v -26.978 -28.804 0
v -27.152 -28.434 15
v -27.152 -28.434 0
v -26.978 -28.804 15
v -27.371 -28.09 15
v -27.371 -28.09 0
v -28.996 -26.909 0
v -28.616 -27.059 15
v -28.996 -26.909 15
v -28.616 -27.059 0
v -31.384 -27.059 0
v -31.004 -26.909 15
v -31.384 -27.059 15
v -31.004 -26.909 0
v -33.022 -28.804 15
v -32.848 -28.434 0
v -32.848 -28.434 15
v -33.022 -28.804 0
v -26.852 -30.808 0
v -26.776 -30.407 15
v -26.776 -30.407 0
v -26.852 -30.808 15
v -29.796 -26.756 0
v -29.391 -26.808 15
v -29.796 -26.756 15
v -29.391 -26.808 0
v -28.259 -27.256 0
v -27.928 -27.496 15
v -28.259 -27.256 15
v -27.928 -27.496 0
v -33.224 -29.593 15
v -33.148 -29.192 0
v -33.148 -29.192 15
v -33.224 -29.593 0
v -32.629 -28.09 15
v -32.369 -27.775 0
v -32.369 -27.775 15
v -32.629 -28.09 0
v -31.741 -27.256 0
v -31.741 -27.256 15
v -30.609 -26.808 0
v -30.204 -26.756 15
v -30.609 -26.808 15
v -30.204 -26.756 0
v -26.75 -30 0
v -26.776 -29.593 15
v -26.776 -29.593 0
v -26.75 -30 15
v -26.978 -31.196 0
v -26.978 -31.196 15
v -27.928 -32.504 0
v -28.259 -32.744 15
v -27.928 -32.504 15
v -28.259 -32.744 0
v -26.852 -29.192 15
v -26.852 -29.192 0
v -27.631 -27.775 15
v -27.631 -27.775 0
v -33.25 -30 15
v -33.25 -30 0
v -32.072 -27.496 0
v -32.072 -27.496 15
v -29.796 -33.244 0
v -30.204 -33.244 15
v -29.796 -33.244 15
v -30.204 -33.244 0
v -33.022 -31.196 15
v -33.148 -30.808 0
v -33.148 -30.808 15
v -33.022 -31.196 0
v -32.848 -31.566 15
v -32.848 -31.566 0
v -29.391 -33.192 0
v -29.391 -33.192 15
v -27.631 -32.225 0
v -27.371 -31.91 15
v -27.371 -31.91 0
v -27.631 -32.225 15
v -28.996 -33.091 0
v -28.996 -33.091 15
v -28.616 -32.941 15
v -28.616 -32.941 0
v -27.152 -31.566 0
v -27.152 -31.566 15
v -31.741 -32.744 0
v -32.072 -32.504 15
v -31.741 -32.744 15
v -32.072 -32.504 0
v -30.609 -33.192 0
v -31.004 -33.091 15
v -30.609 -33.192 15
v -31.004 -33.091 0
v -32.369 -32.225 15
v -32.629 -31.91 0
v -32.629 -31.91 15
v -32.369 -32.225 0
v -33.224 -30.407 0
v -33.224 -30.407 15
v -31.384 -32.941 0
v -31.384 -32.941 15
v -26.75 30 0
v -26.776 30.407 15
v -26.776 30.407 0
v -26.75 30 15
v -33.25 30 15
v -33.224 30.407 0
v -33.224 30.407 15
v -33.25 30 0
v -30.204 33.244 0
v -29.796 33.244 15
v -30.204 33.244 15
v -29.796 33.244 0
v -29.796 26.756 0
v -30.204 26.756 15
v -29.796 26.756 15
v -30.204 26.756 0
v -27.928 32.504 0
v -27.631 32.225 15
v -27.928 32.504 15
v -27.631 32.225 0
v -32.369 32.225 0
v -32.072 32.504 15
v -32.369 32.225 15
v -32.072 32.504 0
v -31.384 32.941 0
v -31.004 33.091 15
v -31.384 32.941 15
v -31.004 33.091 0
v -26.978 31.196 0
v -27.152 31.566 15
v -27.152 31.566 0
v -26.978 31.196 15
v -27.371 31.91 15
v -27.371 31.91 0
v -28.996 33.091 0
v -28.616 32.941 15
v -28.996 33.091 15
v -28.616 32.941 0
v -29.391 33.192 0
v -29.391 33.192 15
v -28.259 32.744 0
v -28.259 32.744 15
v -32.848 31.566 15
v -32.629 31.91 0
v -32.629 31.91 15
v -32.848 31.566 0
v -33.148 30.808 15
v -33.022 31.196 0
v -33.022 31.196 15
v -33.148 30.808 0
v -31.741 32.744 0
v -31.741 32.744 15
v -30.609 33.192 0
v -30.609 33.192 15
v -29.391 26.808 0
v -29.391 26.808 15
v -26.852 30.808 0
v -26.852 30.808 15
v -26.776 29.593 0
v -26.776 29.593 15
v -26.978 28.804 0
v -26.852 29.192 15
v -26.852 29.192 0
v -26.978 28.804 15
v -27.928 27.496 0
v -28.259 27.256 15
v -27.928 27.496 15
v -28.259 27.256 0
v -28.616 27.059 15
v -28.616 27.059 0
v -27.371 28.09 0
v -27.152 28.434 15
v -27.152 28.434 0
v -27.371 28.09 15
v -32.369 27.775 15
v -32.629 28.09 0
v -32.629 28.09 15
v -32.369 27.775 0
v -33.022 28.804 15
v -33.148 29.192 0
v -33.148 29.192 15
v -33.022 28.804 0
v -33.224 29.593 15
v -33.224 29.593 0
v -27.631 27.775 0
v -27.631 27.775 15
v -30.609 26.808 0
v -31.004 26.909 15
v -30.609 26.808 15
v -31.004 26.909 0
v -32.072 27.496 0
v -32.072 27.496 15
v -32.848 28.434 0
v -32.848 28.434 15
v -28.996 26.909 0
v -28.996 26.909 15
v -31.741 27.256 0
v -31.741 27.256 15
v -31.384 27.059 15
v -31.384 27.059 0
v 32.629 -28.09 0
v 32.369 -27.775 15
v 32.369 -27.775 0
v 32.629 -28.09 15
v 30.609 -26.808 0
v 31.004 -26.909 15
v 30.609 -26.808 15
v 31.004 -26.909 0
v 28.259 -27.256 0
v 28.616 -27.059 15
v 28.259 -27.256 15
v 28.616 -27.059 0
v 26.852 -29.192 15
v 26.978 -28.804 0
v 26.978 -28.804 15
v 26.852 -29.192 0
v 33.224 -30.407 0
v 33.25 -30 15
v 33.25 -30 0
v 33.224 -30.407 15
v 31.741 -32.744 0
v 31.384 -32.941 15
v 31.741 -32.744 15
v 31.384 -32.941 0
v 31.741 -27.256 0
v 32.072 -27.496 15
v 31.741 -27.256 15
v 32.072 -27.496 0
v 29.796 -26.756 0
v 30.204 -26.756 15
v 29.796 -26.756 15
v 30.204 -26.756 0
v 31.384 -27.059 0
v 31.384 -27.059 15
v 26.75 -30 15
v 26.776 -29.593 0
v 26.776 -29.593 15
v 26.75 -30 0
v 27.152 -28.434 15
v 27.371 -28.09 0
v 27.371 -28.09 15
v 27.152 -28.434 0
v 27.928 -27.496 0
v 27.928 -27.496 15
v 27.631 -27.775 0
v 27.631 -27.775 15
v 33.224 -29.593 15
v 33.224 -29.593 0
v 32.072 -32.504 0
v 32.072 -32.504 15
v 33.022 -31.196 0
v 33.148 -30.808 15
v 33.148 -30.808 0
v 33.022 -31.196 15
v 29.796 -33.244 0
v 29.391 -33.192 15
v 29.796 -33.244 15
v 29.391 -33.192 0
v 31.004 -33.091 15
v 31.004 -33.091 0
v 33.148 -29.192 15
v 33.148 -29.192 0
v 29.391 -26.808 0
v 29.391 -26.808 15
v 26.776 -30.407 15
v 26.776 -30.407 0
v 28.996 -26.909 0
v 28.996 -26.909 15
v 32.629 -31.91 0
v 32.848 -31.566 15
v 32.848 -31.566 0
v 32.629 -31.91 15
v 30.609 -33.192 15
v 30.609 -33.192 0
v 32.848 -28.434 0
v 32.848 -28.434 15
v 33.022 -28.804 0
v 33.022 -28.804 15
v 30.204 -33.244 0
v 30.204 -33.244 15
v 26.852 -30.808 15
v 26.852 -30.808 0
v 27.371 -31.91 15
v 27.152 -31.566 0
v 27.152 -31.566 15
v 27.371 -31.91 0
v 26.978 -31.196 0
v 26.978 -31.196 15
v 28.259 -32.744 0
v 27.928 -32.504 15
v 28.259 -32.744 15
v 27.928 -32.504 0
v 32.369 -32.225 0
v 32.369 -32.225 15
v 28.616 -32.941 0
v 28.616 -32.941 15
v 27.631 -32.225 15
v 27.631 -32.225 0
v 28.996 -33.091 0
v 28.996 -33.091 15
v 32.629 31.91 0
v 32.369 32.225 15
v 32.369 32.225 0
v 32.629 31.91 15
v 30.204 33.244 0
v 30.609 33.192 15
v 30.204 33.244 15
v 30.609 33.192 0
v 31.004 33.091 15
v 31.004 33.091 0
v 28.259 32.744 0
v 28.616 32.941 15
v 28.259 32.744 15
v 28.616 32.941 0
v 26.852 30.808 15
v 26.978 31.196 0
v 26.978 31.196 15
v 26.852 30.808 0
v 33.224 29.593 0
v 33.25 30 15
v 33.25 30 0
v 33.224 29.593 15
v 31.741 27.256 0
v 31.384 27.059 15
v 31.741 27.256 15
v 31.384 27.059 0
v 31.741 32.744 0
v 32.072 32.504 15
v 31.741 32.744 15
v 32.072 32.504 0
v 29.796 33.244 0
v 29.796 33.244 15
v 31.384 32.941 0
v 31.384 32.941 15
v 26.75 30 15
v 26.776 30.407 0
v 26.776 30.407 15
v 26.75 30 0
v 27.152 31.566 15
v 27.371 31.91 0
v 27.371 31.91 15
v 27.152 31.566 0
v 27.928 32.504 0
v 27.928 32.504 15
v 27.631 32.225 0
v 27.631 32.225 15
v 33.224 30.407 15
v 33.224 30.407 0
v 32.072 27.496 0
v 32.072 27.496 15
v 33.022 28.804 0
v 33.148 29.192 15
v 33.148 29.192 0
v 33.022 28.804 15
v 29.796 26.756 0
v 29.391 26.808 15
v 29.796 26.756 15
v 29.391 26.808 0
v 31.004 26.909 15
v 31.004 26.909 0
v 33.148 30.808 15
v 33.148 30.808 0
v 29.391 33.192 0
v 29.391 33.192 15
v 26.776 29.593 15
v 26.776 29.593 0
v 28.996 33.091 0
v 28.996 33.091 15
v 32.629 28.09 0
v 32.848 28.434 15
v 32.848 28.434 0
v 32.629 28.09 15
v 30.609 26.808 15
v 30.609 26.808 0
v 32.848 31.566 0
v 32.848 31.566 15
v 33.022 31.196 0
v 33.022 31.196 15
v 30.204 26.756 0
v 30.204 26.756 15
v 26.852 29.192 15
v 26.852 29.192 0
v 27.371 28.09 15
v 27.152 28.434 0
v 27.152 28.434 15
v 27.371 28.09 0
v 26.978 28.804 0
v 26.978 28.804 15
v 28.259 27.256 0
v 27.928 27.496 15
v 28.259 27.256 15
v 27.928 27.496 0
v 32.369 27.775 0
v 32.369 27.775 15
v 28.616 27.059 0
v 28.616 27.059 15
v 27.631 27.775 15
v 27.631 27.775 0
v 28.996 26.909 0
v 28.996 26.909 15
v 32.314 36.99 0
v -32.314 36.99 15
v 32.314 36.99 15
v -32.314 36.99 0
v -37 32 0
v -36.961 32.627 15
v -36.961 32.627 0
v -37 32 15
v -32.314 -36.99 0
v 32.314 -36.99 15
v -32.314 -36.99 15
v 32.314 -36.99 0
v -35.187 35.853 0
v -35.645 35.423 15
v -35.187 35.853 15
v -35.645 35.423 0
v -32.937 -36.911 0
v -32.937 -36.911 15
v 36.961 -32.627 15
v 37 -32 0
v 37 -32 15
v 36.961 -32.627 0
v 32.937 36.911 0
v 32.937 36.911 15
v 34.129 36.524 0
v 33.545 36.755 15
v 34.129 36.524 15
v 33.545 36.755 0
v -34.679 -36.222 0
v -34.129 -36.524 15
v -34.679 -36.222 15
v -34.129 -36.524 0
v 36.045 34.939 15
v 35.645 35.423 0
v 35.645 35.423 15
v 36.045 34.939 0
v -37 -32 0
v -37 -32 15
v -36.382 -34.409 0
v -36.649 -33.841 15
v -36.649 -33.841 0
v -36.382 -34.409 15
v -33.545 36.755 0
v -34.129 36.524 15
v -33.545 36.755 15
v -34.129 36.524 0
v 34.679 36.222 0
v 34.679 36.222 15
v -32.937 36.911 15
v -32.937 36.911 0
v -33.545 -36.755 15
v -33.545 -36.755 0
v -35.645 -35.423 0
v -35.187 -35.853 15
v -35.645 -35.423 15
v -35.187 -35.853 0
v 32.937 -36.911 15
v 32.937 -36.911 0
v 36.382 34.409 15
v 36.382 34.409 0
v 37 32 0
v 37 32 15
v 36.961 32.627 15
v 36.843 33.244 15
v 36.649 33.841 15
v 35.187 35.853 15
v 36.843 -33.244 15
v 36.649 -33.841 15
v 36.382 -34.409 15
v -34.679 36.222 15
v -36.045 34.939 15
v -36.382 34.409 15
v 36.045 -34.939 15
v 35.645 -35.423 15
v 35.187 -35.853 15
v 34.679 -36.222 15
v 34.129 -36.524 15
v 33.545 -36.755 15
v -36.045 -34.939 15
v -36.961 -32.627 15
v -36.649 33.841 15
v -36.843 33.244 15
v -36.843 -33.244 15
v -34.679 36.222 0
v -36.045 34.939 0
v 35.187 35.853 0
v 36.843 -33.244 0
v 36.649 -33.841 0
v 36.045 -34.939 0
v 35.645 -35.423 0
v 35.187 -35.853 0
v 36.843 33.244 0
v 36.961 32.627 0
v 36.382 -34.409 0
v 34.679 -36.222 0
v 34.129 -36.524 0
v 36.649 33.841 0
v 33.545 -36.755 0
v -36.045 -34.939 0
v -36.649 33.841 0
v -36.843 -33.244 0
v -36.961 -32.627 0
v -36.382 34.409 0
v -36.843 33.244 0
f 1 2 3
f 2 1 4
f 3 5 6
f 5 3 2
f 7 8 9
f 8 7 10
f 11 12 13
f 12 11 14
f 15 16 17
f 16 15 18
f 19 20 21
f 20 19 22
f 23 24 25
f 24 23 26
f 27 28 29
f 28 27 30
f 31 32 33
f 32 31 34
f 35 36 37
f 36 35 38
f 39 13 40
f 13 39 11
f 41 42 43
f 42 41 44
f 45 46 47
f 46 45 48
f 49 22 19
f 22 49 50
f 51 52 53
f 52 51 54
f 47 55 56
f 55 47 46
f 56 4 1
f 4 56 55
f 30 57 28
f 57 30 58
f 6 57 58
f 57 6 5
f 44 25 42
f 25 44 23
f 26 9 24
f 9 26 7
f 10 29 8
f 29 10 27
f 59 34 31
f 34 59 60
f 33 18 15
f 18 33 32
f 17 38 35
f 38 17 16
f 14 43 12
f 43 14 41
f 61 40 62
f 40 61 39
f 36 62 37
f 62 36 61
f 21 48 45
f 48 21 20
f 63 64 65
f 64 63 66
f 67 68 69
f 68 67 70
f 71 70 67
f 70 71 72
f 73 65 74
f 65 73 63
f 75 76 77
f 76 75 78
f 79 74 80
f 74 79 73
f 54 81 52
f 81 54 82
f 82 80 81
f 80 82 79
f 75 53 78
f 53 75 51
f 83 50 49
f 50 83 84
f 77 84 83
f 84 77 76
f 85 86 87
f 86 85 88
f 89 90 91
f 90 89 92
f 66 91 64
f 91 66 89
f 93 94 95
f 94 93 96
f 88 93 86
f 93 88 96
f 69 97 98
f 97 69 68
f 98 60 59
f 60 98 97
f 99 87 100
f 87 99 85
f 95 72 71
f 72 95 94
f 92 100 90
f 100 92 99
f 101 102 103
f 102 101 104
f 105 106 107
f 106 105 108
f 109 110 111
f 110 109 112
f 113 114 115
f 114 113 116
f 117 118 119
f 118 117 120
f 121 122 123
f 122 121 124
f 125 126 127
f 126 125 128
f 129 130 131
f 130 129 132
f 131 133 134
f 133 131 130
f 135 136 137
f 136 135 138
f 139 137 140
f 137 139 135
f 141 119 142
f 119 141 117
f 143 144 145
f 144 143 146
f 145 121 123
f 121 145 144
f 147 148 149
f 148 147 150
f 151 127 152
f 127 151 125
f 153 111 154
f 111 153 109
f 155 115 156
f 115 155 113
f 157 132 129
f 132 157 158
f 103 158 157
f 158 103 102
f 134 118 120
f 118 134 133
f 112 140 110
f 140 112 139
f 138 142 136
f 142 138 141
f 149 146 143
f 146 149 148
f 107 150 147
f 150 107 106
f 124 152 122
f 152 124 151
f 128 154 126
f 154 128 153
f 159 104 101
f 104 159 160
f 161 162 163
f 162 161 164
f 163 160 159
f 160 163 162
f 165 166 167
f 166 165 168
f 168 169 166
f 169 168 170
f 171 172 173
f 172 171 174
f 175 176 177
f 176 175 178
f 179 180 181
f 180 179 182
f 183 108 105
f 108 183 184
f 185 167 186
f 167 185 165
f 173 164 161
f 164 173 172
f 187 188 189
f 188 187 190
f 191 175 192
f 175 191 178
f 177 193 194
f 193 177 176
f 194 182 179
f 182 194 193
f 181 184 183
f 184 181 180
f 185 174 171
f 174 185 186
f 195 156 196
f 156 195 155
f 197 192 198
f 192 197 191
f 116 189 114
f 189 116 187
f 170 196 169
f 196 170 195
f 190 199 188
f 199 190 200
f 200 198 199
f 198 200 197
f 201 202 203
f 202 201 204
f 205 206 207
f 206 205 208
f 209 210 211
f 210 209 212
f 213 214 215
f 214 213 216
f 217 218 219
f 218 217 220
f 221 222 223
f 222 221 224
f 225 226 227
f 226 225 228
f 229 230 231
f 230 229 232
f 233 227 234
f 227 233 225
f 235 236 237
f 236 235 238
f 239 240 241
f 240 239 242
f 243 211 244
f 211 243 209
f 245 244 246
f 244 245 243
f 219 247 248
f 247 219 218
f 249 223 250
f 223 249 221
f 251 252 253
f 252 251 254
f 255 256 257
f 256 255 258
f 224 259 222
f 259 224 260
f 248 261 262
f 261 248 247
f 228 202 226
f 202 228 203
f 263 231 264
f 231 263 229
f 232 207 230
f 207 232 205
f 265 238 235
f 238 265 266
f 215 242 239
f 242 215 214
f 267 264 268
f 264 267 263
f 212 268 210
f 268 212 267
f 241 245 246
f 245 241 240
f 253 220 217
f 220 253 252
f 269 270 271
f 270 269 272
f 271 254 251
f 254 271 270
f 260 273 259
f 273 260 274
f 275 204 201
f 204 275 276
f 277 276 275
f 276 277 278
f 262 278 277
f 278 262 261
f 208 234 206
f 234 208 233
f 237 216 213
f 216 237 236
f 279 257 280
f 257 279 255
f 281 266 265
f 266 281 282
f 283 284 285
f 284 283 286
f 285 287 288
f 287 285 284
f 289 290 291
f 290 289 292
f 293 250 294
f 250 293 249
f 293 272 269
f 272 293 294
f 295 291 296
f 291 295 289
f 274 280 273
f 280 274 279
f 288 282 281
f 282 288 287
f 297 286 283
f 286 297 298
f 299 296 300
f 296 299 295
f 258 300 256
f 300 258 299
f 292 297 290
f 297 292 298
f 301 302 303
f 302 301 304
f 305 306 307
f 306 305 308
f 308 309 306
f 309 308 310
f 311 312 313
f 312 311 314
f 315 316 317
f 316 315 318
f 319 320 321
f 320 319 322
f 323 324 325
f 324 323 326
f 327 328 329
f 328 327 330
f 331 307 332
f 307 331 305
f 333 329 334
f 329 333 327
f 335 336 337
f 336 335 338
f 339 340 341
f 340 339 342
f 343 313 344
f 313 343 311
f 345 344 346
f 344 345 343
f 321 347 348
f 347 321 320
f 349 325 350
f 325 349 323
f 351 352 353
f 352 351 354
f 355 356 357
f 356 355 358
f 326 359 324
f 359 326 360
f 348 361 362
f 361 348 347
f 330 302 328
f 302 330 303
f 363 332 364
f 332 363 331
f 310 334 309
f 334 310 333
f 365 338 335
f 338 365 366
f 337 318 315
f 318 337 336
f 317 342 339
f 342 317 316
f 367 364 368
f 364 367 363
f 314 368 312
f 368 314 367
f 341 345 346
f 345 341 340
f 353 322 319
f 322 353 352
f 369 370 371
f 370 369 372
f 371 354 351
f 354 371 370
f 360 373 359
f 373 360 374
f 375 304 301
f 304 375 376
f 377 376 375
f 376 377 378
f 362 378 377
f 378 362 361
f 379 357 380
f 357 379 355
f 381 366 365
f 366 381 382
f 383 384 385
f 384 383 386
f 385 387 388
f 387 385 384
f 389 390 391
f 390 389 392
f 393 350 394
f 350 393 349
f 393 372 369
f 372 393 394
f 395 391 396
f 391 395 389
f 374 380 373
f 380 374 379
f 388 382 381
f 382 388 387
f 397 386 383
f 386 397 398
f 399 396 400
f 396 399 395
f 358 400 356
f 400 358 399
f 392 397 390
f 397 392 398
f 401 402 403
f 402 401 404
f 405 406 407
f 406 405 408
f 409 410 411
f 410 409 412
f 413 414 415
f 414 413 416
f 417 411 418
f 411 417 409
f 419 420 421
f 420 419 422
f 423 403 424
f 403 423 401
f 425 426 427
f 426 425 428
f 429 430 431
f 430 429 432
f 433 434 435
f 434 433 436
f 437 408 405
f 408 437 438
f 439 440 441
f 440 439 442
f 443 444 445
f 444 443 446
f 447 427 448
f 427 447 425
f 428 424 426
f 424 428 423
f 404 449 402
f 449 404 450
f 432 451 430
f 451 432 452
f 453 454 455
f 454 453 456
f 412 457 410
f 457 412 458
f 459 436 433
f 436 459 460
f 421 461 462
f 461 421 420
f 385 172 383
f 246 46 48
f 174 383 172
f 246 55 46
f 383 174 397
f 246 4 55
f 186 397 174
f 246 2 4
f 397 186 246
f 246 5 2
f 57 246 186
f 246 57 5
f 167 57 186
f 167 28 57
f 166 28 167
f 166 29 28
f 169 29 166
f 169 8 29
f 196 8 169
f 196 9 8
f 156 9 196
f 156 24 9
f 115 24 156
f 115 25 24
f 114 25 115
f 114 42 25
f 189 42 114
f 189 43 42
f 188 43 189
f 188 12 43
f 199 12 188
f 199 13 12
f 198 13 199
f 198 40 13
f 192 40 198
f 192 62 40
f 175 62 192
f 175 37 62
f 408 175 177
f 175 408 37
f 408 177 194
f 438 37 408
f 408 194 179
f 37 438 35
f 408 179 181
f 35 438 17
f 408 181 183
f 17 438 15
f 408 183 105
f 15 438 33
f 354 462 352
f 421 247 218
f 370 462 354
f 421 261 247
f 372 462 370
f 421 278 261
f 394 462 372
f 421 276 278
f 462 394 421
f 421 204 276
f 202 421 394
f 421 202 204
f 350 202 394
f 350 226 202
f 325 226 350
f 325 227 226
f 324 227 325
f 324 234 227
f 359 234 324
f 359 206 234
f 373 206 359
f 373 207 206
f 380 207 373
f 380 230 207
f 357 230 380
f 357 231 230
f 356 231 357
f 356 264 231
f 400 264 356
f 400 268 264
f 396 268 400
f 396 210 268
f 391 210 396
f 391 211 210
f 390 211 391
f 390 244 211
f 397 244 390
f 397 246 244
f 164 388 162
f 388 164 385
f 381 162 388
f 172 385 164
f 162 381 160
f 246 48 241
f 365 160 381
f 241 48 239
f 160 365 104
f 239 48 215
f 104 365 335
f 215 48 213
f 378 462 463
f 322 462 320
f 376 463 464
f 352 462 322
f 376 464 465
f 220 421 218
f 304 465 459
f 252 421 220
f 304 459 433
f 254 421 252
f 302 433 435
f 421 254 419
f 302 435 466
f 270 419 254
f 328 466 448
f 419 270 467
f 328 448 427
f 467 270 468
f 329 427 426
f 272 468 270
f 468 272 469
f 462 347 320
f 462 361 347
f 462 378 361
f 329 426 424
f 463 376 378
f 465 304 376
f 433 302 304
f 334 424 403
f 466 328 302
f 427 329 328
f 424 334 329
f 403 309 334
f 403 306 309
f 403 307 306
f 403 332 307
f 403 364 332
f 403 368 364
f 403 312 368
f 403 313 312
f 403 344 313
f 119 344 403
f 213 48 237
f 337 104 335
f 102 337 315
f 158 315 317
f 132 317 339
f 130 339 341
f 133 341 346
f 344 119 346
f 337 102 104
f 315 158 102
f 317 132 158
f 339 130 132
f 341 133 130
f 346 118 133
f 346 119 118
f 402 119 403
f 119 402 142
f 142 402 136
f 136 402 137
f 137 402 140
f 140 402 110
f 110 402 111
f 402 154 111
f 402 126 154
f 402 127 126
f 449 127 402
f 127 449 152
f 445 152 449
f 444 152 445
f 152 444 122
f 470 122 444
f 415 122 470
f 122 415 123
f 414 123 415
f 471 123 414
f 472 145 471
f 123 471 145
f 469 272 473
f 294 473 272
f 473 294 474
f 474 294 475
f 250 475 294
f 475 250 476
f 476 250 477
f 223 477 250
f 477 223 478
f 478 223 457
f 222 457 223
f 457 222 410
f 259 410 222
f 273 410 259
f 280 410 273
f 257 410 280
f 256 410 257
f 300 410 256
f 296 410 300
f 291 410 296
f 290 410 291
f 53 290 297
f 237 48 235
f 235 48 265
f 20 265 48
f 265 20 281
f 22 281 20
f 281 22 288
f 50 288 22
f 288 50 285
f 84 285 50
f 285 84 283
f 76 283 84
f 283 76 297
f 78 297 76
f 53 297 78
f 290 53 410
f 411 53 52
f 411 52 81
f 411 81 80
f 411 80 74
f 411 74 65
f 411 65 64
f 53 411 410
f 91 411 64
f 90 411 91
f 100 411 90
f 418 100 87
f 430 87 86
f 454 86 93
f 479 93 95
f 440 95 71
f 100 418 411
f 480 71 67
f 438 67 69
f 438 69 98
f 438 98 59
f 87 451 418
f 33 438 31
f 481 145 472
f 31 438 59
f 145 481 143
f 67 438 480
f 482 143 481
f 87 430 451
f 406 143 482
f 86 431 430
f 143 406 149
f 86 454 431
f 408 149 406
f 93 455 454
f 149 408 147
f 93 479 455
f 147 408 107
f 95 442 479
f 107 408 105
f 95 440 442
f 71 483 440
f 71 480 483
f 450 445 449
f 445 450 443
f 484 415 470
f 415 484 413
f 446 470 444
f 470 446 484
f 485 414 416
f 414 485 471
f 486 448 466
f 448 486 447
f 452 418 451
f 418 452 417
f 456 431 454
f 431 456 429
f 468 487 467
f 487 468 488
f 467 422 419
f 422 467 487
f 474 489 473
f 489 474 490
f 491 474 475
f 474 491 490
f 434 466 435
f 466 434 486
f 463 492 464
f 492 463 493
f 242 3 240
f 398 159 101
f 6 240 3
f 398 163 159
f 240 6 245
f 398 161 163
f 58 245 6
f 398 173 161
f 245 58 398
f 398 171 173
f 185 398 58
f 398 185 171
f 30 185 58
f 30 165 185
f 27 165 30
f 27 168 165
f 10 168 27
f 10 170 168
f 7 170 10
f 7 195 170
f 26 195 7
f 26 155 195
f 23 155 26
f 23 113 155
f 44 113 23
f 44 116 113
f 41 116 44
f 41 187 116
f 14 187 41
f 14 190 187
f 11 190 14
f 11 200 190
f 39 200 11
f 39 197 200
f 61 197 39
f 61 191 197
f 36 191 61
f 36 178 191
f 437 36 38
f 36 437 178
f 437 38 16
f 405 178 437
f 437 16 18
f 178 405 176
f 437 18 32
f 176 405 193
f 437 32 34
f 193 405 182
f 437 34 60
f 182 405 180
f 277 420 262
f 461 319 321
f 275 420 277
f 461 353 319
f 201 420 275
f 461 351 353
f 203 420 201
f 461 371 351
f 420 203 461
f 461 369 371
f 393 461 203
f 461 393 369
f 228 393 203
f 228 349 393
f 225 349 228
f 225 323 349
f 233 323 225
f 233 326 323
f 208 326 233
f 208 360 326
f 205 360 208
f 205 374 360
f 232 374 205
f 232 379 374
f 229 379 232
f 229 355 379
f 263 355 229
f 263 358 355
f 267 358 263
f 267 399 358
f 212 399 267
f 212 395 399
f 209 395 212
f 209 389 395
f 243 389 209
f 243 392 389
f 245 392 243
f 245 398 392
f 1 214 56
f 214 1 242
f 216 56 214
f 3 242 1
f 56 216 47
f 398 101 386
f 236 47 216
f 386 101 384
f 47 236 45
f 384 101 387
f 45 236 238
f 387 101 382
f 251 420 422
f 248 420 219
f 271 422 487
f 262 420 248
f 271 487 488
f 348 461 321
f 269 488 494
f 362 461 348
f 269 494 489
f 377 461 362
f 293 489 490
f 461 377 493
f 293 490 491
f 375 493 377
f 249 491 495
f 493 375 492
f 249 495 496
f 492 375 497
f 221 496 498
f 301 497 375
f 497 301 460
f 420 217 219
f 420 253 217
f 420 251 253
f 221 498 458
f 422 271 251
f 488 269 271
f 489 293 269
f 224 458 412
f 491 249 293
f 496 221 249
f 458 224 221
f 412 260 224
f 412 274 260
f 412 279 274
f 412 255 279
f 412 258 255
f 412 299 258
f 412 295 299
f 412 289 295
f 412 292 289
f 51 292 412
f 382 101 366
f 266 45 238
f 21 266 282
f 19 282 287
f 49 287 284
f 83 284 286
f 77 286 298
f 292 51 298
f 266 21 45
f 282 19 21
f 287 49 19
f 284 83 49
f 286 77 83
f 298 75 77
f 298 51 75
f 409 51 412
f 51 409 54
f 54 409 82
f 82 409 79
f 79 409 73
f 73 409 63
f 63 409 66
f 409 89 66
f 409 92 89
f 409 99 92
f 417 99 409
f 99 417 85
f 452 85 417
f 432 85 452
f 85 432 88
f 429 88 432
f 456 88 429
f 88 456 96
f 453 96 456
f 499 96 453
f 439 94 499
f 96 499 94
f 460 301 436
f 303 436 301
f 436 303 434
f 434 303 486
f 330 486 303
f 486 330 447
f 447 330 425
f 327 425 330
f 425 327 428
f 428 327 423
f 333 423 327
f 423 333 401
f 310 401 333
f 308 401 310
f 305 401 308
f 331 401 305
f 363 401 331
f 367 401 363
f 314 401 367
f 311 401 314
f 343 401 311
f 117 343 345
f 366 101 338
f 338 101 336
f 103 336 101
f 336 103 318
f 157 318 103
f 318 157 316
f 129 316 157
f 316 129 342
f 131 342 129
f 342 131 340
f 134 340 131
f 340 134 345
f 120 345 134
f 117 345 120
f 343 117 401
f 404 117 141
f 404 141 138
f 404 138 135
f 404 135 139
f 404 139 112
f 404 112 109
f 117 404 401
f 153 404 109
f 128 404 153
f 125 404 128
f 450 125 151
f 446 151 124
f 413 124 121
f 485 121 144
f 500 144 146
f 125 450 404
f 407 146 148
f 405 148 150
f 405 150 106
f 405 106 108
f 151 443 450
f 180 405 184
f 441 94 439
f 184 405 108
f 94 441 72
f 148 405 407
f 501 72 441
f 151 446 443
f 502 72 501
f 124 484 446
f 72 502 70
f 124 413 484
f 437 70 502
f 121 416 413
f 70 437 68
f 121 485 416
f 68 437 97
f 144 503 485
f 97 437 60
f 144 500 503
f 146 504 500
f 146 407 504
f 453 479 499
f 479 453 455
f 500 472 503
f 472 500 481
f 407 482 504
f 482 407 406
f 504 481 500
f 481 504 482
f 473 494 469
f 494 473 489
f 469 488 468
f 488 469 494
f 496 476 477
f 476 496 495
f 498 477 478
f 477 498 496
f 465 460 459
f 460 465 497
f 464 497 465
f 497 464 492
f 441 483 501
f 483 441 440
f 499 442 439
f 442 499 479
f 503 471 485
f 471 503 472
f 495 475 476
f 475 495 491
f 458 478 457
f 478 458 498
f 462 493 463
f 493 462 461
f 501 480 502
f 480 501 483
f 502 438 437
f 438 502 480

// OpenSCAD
$fn = 50;


difference() {
	union() {
		hull() {
			translate(v = [-32.0000000000, 32.0000000000, 0]) {
				cylinder(h = 15, r = 5);
			}
			translate(v = [32.0000000000, 32.0000000000, 0]) {
				cylinder(h = 15, r = 5);
			}
			translate(v = [-32.0000000000, -32.0000000000, 0]) {
				cylinder(h = 15, r = 5);
			}
			translate(v = [32.0000000000, -32.0000000000, 0]) {
				cylinder(h = 15, r = 5);
			}
		}
	}
	union() {
		translate(v = [-30.0000000000, -30.0000000000, -100.0000000000]) {
			cylinder(h = 200, r = 3.2500000000);
		}
		translate(v = [-30.0000000000, 30.0000000000, -100.0000000000]) {
			cylinder(h = 200, r = 3.2500000000);
		}
		translate(v = [30.0000000000, -30.0000000000, -100.0000000000]) {
			cylinder(h = 200, r = 3.2500000000);
		}
		translate(v = [30.0000000000, 30.0000000000, -100.0000000000]) {
			cylinder(h = 200, r = 3.2500000000);
		}
	}
}
